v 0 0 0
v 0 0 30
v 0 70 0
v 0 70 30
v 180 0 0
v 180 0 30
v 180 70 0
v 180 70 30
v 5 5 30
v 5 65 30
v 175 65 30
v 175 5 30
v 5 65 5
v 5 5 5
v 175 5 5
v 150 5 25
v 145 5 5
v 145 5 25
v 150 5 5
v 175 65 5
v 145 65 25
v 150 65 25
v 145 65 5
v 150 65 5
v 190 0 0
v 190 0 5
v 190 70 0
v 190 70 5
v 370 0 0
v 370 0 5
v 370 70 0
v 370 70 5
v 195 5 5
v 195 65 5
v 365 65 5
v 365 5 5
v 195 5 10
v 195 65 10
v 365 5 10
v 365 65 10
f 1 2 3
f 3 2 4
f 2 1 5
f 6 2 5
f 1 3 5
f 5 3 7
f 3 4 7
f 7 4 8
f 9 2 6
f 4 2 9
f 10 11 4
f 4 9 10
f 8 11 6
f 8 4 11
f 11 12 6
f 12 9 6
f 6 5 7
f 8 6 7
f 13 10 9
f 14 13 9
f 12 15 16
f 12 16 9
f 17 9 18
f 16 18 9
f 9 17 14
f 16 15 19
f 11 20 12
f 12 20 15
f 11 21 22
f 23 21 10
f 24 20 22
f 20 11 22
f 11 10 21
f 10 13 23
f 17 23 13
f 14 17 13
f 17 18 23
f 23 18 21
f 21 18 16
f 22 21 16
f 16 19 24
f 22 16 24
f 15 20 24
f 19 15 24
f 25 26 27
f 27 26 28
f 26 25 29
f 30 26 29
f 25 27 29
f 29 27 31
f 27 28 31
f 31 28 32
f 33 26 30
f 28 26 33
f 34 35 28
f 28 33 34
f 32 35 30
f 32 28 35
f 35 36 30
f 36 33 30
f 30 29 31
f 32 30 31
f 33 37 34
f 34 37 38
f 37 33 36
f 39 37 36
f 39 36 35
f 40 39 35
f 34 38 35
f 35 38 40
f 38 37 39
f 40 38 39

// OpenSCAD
//Leone Ermer
/*Parametic Box with Dividers and Lid
2013 3D Fabrication

Note: 
To remove Lid and Dividers make false
if fourSections = true the box is divided into 4 sections
if fourSections = false the box only has 3 sections

*/

//Box Controls
boxWidth = 180; // Y axis
boxLength = 70; // X axis
boxDepth = 30; 
boxThickness = 5;

// Box Divider Controls
dividerThickness = boxThickness;
yDivider = true; // Divider that runs along y axis
xDivider = false ; // Divider that runs along x axis
fourSections = false; // true = 4 sections / false = 3 sections
//Controls Dividers' Positions along respective axes
yDividerPos = 145;
xDividerPos = (boxLength/2)-(dividerThickness/2); //Currently Centered
xDividerWidth = 80;

// Lid Controls
lid = true; //True for a lid, False for no lid

//Adds Box
	box();
//Adds Dividers
	if(yDivider == true){
		yDivider();
	}
	if(xDivider == true){
		xDivider();
	}
// Adds Lid
	if(lid == true){
		translate([boxWidth + 10, 0, 0])
		lid();
	}

module box(){
	difference(){
		cube([boxWidth,boxLength,boxDepth]);
		translate([boxThickness,boxThickness,boxThickness])
		cube([boxWidth-(boxThickness *2),boxLength-(boxThickness *2),boxDepth-boxThickness]);
	}
}

module lid(){
		cube([boxWidth,boxLength,boxThickness]);
		translate([boxThickness,boxThickness,boxThickness])
		cube([boxWidth-(boxThickness *2),boxLength-(boxThickness *2),boxThickness]);
}

module yDivider(){
		translate([yDividerPos, 0, 0])
		cube([dividerThickness,boxLength,boxDepth-boxThickness]);
}
module xDivider(){
	translate([0, xDividerPos, 0])
	if(fourSections == true){
		cube([boxWidth,dividerThickness,boxDepth-boxThickness]);
	}
	else{
	cube([yDividerPos,dividerThickness,boxDepth-boxThickness]);
	}
}
